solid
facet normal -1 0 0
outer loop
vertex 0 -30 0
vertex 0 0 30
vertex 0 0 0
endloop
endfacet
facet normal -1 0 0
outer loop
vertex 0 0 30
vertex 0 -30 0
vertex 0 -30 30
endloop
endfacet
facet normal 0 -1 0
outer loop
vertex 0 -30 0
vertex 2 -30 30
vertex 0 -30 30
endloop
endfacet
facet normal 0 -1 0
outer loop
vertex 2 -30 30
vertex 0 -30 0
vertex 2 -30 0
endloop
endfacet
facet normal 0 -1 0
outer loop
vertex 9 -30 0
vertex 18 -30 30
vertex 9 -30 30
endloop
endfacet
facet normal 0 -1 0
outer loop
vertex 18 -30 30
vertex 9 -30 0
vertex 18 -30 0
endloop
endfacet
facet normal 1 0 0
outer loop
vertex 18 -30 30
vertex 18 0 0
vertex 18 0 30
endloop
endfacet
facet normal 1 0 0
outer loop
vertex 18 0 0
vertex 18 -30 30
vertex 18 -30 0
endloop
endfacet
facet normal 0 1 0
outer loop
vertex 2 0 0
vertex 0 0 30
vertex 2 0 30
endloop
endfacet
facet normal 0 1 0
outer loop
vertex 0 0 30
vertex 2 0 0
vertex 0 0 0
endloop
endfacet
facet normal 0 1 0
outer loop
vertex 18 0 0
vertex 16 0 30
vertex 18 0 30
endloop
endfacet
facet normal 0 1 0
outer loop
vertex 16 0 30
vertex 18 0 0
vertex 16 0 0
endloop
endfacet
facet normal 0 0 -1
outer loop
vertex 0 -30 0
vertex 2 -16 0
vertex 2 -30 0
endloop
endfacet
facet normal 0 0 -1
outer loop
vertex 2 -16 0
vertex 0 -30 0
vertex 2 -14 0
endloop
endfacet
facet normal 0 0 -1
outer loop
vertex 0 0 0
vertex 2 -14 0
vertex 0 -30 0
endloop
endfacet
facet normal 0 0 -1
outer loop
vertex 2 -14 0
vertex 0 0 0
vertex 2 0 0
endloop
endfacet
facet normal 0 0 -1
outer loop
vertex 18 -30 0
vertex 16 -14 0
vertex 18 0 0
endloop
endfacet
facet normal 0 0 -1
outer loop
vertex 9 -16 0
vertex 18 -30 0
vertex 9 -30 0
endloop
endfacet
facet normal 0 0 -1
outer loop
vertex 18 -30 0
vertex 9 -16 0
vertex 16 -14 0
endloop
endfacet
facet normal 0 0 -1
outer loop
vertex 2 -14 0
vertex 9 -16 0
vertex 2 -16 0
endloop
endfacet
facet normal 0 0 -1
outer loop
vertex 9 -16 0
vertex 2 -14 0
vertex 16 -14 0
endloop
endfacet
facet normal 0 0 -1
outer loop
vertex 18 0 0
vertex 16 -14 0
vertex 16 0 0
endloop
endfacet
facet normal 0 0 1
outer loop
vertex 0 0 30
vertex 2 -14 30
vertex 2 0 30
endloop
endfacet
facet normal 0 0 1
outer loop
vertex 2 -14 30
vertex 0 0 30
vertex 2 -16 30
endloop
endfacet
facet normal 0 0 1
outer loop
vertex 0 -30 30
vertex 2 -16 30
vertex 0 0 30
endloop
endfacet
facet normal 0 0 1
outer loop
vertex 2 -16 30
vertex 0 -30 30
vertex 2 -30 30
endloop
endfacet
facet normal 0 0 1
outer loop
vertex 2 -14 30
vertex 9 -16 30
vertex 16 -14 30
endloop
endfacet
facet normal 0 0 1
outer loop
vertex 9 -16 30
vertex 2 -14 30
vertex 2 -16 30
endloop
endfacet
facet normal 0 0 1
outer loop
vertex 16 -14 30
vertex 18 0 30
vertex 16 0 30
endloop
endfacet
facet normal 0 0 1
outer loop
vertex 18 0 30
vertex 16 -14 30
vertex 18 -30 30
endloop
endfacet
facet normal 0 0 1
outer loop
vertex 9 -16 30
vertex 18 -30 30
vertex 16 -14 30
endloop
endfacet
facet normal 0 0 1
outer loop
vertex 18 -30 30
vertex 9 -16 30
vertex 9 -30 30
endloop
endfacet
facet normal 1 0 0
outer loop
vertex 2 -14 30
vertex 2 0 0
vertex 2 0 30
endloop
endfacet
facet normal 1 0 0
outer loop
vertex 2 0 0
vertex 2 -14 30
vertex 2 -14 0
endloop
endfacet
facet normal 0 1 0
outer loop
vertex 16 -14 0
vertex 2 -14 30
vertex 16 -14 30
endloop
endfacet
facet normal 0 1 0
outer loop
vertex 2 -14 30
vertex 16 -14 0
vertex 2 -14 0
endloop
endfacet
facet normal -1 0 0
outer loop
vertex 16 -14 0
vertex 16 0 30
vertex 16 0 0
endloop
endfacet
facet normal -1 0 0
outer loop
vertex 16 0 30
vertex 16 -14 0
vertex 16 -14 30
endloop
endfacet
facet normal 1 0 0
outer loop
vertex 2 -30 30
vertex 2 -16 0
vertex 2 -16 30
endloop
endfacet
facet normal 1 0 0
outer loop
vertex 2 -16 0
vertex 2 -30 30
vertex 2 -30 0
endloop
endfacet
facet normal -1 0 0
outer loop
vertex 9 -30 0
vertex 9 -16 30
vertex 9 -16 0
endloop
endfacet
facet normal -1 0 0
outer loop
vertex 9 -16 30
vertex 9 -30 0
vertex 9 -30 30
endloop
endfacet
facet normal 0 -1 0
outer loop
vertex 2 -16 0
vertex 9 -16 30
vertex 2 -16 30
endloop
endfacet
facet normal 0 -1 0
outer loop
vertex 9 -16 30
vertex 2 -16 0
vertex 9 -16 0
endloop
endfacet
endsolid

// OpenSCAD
lower_inner = 14;
thickness = 2;
height = 30;
key_inner = 7;
length = 30;

rotate([90, 0, 0]) difference() {
    cube([lower_inner + 2 * thickness, length, height]);
    translate([thickness, 0, 0]) cube([lower_inner, length, height / 2 - 0.5 * thickness]);
    translate([thickness, 0, height / 2 + 0.5 * thickness]) cube([key_inner, length, height / 2 - 0.5 * thickness]);
}
